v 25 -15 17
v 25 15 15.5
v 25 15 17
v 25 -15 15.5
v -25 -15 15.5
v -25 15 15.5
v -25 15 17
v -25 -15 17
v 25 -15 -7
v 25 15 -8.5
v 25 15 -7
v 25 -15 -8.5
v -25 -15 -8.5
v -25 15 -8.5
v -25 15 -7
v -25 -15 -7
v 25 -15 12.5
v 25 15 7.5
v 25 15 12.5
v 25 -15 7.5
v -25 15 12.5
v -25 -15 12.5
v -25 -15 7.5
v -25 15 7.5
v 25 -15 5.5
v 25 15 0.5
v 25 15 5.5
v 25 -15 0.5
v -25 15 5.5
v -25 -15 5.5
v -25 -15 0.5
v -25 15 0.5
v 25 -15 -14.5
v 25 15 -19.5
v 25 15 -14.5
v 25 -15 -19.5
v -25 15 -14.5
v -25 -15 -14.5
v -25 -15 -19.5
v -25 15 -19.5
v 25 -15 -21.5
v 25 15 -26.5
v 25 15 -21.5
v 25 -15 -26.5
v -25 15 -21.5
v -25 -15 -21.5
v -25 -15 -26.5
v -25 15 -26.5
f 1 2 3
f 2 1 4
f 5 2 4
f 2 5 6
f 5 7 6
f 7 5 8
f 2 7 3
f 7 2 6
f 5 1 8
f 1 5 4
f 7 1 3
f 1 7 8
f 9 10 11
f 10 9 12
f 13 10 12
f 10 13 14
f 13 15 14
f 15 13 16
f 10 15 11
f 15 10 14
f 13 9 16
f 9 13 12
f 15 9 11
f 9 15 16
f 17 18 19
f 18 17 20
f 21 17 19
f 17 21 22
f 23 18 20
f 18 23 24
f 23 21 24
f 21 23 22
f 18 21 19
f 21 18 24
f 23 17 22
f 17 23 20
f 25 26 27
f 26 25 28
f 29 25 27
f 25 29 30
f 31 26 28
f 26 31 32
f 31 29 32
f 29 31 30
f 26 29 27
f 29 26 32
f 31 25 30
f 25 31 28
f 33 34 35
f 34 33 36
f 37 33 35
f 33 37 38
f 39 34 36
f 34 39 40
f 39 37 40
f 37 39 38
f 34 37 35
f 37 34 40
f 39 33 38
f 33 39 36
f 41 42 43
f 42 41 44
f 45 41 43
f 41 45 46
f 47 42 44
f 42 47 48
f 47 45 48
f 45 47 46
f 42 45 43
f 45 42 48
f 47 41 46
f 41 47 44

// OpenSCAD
// Dimensions for components
plate_length = 50; // Length of the rectangular plates
plate_width = 30;  // Width of the rectangular plates
plate_thickness = 5; // Thickness of the flat rectangular plates
beveled_plate_thickness = 3; // Thickness of the thin rectangular plates with beveled edges
bevel_size = 7; // Adjusted size of the bevel on the beveled plates for more pronounced edges
spacing = 2; // Increased spacing between the plates for better alignment

// Function to create a flat rectangular plate
module flat_rectangular_plate() {
    cube([plate_length, plate_width, plate_thickness], center = true);
}

// Function to create a thin rectangular plate with beveled edges
module thin_rectangular_plate_with_beveled_edges() {
    difference() {
        cube([plate_length, plate_width, beveled_plate_thickness], center = true);
        translate([-plate_length/2, -plate_width/2, 0])
            hull() {
                translate([0, 0, 0])
                    cube([bevel_size, plate_width, beveled_plate_thickness], center = false);
                translate([plate_length - bevel_size, 0, 0])
                    cube([bevel_size, plate_width, beveled_plate_thickness], center = false);
            }
    }
}

// Assembling the layers based on the graph_dict
module flexible_coupling() {
    // Layer 1: Thin rectangular plate with beveled edges
    translate([0, 0, plate_thickness * 2 + beveled_plate_thickness + spacing * 2])
        thin_rectangular_plate_with_beveled_edges();

    // Layer 2: Flat rectangular plate
    translate([0, 0, plate_thickness + beveled_plate_thickness + spacing])
        flat_rectangular_plate();

    // Layer 3: Flat rectangular plate
    translate([0, 0, beveled_plate_thickness])
        flat_rectangular_plate();

    // Layer 4: Thin rectangular plate with beveled edges
    translate([0, 0, -plate_thickness - spacing])
        thin_rectangular_plate_with_beveled_edges();

    // Layer 5: Flat rectangular plate
    translate([0, 0, -plate_thickness * 2 - beveled_plate_thickness - spacing * 2])
        flat_rectangular_plate();

    // Layer 6: Flat rectangular plate
    translate([0, 0, -plate_thickness * 3 - beveled_plate_thickness - spacing * 3])
        flat_rectangular_plate();
}

// Render the flexible coupling
flexible_coupling();
